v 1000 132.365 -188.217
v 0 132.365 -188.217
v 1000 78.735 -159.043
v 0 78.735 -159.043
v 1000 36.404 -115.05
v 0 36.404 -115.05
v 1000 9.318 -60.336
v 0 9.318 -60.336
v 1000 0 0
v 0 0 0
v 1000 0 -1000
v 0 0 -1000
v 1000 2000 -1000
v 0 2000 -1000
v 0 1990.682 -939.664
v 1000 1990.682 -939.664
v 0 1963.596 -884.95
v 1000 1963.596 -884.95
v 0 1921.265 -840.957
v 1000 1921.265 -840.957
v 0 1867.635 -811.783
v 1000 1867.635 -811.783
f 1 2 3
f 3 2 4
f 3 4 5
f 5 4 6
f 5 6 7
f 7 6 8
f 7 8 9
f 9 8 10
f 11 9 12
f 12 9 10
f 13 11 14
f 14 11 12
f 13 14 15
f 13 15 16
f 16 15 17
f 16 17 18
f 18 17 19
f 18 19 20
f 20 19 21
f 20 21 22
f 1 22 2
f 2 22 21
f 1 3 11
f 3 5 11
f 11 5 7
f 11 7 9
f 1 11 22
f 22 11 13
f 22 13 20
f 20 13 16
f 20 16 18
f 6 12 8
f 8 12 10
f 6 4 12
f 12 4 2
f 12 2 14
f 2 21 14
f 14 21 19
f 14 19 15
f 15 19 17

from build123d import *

# Parameters (mm, degrees)
AUFSATZ_LINEAR_AUSTRAGEN1_DEPTH = 1000


with BuildPart() as part:
    # Skizze1 → Aufsatz-Linear austragen1 (new body)
    with BuildSketch(Plane(origin=(0, 0, 0), x_dir=(0, 0, -1), z_dir=(1, 0, 0))):
        with BuildLine():
            Line((0, 0), (1000, 0))
            Line((1000, 0), (1000, 2000))
            ThreePointArc((1000, 2000), (884.950154707, 1963.595638995), (811.783470431, 1867.635330981))
            Line((811.783470431, 1867.635330981), (188.216529569, 132.364669019))
            ThreePointArc((188.216529569, 132.364669019), (115.049845293, 36.404361005), (0, 0))
        make_face()
    extrude(amount=AUFSATZ_LINEAR_AUSTRAGEN1_DEPTH)


solid = part.part
